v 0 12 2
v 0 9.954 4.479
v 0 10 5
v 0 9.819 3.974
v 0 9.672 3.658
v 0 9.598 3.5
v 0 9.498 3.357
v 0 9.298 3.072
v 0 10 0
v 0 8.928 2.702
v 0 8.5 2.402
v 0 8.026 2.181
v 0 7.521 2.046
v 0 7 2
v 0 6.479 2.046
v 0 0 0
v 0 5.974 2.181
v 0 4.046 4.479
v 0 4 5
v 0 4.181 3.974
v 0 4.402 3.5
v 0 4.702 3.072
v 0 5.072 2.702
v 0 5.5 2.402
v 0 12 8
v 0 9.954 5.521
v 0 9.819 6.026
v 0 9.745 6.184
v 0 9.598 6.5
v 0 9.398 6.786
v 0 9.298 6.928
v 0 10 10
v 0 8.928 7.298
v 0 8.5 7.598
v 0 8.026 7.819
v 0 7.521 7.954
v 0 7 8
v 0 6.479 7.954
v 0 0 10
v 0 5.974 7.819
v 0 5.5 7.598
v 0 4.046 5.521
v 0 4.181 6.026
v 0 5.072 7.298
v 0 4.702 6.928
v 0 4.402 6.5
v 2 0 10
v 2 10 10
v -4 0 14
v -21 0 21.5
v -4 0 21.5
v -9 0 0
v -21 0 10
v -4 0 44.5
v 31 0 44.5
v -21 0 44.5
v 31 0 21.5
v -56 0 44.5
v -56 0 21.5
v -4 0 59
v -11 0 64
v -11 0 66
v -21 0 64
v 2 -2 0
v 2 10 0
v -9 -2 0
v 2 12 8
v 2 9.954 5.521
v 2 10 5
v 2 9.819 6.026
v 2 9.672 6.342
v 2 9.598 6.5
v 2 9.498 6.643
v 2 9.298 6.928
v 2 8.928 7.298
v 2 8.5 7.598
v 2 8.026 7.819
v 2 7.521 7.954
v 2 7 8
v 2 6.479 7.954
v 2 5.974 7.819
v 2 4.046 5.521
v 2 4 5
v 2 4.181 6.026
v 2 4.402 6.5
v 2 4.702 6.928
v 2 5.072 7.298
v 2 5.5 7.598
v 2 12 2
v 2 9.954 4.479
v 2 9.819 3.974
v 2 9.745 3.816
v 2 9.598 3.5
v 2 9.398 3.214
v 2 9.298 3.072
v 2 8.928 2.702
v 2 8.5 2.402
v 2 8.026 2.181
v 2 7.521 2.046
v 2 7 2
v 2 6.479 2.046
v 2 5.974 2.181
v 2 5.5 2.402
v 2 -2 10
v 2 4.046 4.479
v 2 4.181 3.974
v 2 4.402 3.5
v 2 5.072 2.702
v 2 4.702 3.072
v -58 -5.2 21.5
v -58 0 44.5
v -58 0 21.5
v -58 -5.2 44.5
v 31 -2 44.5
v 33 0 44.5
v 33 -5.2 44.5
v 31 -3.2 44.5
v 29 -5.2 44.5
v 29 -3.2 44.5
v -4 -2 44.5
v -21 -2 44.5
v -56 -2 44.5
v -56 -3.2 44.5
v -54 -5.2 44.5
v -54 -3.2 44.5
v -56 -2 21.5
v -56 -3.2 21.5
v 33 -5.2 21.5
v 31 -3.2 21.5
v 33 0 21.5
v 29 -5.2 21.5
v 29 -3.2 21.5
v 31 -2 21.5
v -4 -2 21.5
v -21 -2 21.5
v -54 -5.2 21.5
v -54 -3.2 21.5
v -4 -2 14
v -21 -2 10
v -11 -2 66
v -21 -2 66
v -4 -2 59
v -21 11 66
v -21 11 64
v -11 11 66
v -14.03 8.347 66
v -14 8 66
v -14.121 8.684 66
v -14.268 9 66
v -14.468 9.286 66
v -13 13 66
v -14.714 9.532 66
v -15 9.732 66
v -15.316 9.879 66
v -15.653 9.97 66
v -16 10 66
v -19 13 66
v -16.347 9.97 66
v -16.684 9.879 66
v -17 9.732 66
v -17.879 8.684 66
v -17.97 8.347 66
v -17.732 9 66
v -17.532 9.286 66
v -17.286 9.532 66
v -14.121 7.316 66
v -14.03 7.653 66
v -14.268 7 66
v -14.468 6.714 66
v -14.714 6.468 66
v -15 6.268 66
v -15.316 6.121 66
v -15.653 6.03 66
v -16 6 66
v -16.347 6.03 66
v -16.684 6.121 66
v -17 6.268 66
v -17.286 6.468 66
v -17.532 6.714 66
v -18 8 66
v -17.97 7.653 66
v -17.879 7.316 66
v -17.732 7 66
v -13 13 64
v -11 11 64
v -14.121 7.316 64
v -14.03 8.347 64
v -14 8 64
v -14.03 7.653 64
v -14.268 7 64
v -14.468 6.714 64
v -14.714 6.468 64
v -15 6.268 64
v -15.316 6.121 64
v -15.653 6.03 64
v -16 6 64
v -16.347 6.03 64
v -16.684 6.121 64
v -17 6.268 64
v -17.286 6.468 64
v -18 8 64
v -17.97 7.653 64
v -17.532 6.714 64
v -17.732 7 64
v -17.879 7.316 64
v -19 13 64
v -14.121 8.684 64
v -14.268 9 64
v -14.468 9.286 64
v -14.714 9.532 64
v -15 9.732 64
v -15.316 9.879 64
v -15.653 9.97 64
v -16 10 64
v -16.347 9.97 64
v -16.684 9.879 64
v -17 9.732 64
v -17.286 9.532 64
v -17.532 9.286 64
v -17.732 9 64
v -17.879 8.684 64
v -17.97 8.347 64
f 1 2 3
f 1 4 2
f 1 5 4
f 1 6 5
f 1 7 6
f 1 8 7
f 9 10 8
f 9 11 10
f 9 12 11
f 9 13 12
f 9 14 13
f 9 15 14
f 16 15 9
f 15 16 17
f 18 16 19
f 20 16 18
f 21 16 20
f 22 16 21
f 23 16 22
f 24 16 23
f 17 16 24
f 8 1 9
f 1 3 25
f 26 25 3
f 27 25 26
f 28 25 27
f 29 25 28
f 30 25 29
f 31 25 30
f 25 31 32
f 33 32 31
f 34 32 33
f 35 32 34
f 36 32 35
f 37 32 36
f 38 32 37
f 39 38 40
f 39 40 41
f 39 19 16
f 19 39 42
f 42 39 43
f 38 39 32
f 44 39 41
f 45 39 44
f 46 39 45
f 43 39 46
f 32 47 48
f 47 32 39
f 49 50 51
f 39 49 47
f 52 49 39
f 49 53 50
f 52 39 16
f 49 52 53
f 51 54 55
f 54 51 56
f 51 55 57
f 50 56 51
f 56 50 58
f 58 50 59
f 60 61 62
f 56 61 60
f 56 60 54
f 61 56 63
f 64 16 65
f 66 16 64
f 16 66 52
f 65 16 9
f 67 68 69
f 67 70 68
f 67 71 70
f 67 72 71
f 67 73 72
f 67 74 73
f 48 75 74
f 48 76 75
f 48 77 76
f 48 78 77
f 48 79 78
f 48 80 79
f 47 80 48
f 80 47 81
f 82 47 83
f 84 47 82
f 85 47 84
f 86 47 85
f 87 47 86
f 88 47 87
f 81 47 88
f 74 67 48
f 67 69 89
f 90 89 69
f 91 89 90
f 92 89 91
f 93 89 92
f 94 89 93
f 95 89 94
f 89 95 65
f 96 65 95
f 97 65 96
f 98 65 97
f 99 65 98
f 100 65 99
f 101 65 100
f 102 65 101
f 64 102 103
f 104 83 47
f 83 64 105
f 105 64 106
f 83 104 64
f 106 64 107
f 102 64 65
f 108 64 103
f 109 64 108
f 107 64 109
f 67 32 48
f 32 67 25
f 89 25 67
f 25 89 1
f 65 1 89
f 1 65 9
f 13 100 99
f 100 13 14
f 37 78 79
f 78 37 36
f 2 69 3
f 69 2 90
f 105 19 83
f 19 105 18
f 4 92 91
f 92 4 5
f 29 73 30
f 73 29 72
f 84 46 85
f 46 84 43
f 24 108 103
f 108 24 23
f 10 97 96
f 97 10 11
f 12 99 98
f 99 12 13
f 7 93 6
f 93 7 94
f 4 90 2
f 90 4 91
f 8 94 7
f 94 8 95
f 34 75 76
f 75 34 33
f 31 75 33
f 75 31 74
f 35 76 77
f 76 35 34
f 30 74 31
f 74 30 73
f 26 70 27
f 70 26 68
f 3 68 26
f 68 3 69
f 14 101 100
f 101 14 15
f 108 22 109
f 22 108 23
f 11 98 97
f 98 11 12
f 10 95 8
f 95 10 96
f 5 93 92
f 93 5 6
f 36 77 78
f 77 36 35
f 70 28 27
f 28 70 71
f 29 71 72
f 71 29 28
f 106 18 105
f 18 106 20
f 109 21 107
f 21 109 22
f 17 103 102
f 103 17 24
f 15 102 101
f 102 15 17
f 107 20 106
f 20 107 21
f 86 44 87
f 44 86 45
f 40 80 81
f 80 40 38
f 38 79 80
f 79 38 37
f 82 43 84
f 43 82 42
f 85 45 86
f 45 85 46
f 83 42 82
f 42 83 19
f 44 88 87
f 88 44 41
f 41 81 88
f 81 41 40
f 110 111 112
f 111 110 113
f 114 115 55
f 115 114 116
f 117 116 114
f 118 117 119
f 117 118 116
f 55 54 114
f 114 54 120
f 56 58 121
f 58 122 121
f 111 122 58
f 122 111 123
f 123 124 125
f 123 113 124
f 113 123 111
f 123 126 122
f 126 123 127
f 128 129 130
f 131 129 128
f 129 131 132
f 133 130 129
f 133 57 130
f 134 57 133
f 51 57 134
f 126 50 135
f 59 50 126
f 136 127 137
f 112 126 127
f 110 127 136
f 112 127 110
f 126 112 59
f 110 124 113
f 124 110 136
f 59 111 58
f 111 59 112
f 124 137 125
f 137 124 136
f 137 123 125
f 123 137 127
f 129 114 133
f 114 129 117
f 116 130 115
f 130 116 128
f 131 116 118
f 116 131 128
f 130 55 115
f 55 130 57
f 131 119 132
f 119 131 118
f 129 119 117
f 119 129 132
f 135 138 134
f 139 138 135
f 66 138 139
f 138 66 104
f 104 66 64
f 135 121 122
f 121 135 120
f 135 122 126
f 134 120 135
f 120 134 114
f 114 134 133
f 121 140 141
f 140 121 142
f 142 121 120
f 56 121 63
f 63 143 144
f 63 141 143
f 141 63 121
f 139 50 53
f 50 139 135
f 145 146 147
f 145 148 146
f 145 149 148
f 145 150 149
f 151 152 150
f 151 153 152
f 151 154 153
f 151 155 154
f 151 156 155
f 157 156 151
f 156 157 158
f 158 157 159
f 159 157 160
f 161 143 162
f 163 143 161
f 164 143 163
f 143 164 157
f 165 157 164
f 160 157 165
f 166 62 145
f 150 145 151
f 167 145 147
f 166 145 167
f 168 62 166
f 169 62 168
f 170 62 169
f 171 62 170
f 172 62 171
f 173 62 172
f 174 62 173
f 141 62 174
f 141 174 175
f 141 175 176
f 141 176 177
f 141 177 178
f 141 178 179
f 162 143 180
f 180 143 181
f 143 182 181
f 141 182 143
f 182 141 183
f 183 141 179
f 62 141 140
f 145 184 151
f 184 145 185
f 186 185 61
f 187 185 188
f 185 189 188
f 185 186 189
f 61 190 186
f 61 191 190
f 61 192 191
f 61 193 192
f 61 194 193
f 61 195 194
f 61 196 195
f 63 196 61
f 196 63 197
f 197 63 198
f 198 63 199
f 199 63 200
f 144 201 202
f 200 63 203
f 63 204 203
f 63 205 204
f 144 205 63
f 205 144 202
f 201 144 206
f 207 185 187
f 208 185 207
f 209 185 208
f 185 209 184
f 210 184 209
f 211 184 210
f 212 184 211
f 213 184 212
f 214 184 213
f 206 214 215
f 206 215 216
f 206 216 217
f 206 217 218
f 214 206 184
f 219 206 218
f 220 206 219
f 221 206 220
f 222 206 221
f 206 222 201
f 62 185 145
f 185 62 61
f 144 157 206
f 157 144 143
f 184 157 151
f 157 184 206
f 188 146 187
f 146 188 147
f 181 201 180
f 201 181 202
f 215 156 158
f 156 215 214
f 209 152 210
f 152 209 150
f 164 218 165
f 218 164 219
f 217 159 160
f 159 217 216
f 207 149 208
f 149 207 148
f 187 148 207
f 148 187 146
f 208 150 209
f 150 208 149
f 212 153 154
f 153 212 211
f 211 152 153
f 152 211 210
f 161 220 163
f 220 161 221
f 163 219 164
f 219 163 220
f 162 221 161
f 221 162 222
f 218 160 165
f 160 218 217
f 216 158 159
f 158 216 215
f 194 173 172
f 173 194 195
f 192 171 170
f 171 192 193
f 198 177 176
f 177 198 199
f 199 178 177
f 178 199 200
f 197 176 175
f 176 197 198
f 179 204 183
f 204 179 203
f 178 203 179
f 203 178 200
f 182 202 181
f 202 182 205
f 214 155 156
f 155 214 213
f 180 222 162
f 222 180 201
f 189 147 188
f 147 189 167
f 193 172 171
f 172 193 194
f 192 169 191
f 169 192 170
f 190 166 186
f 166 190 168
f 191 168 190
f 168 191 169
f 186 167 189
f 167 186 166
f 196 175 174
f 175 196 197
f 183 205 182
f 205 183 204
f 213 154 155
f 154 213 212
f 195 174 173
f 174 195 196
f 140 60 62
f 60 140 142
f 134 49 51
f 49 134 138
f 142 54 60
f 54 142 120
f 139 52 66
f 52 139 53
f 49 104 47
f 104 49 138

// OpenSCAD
height = 66;

top_diameter = 4;
top_pos_y = 10;
top_pad_width = 10;

bottom_diameter = 6;
bottom_pos_y = 7;
bottom_pad_width = 10;

bottom_spacer_width = 4;

din_width = 87;
din_height = 23;
din_thickness = 1.2;

color("green", 0.5)
translate([- 17 / 2 - bottom_spacer_width - din_width / 2, -2, height / 2 - din_height / 2])
union() {
  cube([din_width, 2, din_height], false);

  translate([-2, - (2 + din_thickness), 0])
  union() {
    cube([2, 4 + din_thickness, din_height], false);
    cube([4, 2, din_height], false);
  }

  translate([din_width, - (2 + din_thickness), 0])
  union() {
    cube([2, 4 + din_thickness, din_height], false);
    translate([-2, 0, 0])
      cube([4, 2, din_height], false);
  }
}

color("purple", 0.5)
translate([-17 - bottom_spacer_width, -2, height - 2])
difference() {
  hull() {
    cube([top_pad_width, top_pos_y + top_diameter / 2 + 1, 2], false);
    translate([2, 0, 0])
      cube([top_pad_width - 4, top_pos_y + top_diameter / 2 + 3, 2], false);
  }

  translate([top_pad_width / 2, top_pos_y, -2])
    cylinder(6, d = top_diameter, $fn = 36);
}

color("red", 0.5)
translate([-17 - bottom_spacer_width, -2, 0])
hull() {
  translate([0, 0, 10])
    cube([top_pad_width, 2, height - 10], false);
  translate([12, 0, 0])
    cube([5, 2, height - (17 - top_pad_width)], false);
}


color("orange", 0.5)
translate([-bottom_spacer_width - 2, -2, 0])
hull() {
  cube([2, 2, bottom_pad_width + bottom_spacer_width], false);
  translate([bottom_spacer_width + 2, 0, 0])
    cube([2, 2, bottom_pad_width], false);
}

color("blue", 0.5)
difference() {
  translate([0, 0, 0])
  hull() {
    cube([2, bottom_pad_width, bottom_pad_width], false);
    translate([0, 0, 2])
      cube([2, 6 + bottom_diameter, 6], false);
  }

  translate([-2, bottom_pos_y, 2 + bottom_diameter / 2])
  rotate([0, 90, 0])
    cylinder(6, d = bottom_diameter, $fn = 36);
}
